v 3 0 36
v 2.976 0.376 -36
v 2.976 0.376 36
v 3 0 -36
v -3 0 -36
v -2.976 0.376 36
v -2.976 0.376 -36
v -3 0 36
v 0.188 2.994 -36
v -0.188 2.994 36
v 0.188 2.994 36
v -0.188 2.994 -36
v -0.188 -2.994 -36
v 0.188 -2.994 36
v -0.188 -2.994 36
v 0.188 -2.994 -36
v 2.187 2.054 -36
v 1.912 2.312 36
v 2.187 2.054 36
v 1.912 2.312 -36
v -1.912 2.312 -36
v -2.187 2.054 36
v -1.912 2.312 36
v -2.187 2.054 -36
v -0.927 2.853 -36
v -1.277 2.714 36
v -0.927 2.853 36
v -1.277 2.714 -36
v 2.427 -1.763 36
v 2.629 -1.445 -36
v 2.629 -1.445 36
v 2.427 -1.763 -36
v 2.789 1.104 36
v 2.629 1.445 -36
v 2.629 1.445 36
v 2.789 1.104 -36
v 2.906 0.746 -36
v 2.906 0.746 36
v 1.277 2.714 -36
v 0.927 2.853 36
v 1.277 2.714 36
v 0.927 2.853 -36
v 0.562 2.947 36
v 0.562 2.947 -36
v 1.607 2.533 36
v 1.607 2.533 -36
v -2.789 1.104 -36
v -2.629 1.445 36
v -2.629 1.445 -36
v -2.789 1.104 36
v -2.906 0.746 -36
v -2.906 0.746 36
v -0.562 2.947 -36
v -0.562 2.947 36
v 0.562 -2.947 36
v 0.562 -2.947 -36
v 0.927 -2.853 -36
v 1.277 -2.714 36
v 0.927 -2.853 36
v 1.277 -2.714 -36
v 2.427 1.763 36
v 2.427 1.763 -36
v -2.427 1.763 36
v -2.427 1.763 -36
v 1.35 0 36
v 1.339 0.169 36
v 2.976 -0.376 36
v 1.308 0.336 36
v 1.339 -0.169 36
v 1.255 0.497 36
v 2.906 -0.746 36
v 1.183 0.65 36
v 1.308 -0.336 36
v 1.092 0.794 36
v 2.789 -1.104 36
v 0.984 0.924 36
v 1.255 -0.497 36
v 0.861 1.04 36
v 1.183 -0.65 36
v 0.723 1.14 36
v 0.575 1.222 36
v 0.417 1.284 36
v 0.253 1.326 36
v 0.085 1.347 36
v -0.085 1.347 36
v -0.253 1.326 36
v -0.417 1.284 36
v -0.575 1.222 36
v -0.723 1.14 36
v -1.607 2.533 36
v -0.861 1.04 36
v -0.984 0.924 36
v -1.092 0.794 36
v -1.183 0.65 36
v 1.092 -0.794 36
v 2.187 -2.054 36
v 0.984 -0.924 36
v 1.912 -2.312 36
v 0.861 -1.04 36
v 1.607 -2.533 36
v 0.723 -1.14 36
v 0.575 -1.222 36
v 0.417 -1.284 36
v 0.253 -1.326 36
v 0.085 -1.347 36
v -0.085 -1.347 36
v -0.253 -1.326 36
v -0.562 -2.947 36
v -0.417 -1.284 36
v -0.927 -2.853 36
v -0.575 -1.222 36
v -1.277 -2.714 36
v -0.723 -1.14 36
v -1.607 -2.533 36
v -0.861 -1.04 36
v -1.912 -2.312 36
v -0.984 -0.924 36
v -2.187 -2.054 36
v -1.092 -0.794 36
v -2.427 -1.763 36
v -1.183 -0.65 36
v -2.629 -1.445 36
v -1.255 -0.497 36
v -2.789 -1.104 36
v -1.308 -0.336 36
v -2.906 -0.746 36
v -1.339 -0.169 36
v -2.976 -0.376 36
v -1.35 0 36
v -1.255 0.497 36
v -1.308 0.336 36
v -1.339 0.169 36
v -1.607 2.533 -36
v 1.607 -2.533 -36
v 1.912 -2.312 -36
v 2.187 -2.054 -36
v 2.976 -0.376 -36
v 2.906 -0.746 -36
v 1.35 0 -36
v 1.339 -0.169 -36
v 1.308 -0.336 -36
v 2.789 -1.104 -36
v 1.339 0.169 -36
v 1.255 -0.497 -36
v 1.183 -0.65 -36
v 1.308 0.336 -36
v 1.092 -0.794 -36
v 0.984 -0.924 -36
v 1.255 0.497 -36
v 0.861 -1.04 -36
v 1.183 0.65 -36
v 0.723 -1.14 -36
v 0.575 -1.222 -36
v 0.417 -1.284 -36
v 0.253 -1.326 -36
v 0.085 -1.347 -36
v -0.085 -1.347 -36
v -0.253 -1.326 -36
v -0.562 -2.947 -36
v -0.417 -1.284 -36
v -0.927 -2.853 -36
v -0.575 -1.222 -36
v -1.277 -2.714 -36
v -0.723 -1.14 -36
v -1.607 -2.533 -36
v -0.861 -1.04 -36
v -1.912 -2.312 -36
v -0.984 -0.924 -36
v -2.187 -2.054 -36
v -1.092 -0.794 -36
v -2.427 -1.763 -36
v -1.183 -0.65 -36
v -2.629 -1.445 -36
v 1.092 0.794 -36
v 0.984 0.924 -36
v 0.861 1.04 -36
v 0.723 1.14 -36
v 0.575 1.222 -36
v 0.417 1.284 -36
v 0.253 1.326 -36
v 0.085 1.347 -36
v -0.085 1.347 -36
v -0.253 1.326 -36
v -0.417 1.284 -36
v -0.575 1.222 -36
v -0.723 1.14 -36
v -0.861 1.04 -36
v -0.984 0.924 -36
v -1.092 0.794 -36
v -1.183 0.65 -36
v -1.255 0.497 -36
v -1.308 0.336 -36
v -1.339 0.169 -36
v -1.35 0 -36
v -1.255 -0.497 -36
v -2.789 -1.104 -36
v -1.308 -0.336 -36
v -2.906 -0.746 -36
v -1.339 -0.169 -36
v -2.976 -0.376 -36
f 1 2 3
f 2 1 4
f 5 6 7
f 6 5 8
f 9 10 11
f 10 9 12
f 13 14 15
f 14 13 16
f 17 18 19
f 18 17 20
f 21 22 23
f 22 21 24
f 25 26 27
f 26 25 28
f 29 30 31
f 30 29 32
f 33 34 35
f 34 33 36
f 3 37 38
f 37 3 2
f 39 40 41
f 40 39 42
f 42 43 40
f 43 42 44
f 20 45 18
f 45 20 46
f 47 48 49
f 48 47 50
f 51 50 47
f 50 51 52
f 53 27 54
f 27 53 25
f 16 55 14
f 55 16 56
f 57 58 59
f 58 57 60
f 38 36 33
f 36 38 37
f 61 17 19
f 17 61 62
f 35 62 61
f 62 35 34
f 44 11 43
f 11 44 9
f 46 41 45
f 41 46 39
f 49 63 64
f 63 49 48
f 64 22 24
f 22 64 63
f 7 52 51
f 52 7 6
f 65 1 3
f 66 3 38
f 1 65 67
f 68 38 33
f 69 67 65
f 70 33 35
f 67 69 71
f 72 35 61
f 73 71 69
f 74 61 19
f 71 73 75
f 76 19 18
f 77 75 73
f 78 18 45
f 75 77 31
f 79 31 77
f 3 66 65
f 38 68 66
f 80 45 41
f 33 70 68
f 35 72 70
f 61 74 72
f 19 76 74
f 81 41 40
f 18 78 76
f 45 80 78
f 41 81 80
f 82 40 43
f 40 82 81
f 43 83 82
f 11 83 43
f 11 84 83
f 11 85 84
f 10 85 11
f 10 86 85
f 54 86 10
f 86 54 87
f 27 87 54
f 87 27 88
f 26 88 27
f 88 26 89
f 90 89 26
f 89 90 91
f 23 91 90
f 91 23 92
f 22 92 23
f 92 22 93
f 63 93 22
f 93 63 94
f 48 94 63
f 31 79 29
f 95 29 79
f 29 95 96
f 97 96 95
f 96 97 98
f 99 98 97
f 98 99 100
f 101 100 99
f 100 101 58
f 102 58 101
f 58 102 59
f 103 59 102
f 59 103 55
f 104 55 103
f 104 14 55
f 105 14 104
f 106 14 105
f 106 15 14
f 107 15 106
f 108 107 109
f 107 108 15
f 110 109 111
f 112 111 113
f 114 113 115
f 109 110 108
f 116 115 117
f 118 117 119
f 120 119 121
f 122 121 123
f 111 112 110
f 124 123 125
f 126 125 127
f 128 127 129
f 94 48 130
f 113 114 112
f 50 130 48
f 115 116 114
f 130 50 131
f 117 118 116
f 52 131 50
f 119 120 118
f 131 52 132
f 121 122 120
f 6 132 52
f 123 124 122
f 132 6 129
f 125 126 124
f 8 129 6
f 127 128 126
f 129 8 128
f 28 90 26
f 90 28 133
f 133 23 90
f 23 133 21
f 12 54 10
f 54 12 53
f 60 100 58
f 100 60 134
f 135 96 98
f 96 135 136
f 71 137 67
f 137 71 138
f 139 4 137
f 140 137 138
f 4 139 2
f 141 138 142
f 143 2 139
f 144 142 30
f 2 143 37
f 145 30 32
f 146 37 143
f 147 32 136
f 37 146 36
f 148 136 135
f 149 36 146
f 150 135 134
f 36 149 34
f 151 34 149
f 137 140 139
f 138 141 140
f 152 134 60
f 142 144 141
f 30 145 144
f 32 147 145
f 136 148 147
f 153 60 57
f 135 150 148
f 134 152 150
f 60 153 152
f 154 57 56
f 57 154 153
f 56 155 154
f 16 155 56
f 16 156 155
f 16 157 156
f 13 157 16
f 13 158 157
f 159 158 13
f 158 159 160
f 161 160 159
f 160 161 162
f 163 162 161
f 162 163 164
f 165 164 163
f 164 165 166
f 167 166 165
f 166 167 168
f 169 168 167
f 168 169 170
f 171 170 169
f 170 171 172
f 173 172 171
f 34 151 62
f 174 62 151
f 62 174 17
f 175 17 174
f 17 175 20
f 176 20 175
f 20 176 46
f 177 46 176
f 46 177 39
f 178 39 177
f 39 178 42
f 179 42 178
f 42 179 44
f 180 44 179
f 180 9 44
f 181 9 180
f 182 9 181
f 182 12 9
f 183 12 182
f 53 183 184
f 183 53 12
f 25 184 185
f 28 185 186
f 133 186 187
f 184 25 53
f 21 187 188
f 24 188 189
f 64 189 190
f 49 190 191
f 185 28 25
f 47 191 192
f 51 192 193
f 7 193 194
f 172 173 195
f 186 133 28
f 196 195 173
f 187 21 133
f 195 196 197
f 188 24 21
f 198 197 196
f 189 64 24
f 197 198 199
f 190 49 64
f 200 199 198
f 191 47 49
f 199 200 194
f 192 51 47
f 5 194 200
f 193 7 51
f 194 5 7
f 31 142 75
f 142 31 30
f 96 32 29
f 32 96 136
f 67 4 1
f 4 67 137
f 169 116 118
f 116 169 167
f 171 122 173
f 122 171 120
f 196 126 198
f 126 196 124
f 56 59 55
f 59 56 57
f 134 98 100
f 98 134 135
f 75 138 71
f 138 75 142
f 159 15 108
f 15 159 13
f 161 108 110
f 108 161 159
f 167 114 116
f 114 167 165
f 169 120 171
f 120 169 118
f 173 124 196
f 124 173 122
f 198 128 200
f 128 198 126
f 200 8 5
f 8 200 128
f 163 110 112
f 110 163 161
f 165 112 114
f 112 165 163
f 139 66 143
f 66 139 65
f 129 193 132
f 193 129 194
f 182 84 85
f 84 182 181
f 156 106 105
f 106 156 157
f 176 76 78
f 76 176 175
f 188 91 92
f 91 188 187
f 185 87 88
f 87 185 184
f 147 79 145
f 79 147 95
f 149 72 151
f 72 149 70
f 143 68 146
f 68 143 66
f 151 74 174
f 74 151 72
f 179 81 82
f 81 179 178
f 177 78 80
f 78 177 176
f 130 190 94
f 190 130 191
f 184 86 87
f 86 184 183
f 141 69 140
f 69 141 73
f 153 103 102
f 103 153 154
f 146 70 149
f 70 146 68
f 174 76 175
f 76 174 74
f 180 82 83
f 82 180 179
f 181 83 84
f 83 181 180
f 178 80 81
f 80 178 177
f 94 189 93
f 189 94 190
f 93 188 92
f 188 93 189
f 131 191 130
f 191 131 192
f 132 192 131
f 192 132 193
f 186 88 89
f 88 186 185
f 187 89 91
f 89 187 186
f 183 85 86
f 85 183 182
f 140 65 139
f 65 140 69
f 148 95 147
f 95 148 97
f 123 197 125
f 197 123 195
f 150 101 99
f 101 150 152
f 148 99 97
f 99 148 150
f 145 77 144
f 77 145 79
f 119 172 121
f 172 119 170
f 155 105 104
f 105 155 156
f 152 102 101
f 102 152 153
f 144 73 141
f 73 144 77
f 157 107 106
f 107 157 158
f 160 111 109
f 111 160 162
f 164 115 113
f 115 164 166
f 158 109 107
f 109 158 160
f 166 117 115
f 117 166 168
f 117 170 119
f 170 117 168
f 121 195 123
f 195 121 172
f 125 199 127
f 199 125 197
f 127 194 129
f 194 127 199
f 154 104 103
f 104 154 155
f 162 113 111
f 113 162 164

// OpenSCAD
$fn = 50;


difference() {
	union() {
		translate(v = [0, 0, -36.0000000000]) {
			cylinder(h = 72, r = 3.0000000000);
		}
	}
	union() {
		translate(v = [0, 0, -100.0000000000]) {
			cylinder(h = 200, r = 1.3500000000);
		}
	}
}
